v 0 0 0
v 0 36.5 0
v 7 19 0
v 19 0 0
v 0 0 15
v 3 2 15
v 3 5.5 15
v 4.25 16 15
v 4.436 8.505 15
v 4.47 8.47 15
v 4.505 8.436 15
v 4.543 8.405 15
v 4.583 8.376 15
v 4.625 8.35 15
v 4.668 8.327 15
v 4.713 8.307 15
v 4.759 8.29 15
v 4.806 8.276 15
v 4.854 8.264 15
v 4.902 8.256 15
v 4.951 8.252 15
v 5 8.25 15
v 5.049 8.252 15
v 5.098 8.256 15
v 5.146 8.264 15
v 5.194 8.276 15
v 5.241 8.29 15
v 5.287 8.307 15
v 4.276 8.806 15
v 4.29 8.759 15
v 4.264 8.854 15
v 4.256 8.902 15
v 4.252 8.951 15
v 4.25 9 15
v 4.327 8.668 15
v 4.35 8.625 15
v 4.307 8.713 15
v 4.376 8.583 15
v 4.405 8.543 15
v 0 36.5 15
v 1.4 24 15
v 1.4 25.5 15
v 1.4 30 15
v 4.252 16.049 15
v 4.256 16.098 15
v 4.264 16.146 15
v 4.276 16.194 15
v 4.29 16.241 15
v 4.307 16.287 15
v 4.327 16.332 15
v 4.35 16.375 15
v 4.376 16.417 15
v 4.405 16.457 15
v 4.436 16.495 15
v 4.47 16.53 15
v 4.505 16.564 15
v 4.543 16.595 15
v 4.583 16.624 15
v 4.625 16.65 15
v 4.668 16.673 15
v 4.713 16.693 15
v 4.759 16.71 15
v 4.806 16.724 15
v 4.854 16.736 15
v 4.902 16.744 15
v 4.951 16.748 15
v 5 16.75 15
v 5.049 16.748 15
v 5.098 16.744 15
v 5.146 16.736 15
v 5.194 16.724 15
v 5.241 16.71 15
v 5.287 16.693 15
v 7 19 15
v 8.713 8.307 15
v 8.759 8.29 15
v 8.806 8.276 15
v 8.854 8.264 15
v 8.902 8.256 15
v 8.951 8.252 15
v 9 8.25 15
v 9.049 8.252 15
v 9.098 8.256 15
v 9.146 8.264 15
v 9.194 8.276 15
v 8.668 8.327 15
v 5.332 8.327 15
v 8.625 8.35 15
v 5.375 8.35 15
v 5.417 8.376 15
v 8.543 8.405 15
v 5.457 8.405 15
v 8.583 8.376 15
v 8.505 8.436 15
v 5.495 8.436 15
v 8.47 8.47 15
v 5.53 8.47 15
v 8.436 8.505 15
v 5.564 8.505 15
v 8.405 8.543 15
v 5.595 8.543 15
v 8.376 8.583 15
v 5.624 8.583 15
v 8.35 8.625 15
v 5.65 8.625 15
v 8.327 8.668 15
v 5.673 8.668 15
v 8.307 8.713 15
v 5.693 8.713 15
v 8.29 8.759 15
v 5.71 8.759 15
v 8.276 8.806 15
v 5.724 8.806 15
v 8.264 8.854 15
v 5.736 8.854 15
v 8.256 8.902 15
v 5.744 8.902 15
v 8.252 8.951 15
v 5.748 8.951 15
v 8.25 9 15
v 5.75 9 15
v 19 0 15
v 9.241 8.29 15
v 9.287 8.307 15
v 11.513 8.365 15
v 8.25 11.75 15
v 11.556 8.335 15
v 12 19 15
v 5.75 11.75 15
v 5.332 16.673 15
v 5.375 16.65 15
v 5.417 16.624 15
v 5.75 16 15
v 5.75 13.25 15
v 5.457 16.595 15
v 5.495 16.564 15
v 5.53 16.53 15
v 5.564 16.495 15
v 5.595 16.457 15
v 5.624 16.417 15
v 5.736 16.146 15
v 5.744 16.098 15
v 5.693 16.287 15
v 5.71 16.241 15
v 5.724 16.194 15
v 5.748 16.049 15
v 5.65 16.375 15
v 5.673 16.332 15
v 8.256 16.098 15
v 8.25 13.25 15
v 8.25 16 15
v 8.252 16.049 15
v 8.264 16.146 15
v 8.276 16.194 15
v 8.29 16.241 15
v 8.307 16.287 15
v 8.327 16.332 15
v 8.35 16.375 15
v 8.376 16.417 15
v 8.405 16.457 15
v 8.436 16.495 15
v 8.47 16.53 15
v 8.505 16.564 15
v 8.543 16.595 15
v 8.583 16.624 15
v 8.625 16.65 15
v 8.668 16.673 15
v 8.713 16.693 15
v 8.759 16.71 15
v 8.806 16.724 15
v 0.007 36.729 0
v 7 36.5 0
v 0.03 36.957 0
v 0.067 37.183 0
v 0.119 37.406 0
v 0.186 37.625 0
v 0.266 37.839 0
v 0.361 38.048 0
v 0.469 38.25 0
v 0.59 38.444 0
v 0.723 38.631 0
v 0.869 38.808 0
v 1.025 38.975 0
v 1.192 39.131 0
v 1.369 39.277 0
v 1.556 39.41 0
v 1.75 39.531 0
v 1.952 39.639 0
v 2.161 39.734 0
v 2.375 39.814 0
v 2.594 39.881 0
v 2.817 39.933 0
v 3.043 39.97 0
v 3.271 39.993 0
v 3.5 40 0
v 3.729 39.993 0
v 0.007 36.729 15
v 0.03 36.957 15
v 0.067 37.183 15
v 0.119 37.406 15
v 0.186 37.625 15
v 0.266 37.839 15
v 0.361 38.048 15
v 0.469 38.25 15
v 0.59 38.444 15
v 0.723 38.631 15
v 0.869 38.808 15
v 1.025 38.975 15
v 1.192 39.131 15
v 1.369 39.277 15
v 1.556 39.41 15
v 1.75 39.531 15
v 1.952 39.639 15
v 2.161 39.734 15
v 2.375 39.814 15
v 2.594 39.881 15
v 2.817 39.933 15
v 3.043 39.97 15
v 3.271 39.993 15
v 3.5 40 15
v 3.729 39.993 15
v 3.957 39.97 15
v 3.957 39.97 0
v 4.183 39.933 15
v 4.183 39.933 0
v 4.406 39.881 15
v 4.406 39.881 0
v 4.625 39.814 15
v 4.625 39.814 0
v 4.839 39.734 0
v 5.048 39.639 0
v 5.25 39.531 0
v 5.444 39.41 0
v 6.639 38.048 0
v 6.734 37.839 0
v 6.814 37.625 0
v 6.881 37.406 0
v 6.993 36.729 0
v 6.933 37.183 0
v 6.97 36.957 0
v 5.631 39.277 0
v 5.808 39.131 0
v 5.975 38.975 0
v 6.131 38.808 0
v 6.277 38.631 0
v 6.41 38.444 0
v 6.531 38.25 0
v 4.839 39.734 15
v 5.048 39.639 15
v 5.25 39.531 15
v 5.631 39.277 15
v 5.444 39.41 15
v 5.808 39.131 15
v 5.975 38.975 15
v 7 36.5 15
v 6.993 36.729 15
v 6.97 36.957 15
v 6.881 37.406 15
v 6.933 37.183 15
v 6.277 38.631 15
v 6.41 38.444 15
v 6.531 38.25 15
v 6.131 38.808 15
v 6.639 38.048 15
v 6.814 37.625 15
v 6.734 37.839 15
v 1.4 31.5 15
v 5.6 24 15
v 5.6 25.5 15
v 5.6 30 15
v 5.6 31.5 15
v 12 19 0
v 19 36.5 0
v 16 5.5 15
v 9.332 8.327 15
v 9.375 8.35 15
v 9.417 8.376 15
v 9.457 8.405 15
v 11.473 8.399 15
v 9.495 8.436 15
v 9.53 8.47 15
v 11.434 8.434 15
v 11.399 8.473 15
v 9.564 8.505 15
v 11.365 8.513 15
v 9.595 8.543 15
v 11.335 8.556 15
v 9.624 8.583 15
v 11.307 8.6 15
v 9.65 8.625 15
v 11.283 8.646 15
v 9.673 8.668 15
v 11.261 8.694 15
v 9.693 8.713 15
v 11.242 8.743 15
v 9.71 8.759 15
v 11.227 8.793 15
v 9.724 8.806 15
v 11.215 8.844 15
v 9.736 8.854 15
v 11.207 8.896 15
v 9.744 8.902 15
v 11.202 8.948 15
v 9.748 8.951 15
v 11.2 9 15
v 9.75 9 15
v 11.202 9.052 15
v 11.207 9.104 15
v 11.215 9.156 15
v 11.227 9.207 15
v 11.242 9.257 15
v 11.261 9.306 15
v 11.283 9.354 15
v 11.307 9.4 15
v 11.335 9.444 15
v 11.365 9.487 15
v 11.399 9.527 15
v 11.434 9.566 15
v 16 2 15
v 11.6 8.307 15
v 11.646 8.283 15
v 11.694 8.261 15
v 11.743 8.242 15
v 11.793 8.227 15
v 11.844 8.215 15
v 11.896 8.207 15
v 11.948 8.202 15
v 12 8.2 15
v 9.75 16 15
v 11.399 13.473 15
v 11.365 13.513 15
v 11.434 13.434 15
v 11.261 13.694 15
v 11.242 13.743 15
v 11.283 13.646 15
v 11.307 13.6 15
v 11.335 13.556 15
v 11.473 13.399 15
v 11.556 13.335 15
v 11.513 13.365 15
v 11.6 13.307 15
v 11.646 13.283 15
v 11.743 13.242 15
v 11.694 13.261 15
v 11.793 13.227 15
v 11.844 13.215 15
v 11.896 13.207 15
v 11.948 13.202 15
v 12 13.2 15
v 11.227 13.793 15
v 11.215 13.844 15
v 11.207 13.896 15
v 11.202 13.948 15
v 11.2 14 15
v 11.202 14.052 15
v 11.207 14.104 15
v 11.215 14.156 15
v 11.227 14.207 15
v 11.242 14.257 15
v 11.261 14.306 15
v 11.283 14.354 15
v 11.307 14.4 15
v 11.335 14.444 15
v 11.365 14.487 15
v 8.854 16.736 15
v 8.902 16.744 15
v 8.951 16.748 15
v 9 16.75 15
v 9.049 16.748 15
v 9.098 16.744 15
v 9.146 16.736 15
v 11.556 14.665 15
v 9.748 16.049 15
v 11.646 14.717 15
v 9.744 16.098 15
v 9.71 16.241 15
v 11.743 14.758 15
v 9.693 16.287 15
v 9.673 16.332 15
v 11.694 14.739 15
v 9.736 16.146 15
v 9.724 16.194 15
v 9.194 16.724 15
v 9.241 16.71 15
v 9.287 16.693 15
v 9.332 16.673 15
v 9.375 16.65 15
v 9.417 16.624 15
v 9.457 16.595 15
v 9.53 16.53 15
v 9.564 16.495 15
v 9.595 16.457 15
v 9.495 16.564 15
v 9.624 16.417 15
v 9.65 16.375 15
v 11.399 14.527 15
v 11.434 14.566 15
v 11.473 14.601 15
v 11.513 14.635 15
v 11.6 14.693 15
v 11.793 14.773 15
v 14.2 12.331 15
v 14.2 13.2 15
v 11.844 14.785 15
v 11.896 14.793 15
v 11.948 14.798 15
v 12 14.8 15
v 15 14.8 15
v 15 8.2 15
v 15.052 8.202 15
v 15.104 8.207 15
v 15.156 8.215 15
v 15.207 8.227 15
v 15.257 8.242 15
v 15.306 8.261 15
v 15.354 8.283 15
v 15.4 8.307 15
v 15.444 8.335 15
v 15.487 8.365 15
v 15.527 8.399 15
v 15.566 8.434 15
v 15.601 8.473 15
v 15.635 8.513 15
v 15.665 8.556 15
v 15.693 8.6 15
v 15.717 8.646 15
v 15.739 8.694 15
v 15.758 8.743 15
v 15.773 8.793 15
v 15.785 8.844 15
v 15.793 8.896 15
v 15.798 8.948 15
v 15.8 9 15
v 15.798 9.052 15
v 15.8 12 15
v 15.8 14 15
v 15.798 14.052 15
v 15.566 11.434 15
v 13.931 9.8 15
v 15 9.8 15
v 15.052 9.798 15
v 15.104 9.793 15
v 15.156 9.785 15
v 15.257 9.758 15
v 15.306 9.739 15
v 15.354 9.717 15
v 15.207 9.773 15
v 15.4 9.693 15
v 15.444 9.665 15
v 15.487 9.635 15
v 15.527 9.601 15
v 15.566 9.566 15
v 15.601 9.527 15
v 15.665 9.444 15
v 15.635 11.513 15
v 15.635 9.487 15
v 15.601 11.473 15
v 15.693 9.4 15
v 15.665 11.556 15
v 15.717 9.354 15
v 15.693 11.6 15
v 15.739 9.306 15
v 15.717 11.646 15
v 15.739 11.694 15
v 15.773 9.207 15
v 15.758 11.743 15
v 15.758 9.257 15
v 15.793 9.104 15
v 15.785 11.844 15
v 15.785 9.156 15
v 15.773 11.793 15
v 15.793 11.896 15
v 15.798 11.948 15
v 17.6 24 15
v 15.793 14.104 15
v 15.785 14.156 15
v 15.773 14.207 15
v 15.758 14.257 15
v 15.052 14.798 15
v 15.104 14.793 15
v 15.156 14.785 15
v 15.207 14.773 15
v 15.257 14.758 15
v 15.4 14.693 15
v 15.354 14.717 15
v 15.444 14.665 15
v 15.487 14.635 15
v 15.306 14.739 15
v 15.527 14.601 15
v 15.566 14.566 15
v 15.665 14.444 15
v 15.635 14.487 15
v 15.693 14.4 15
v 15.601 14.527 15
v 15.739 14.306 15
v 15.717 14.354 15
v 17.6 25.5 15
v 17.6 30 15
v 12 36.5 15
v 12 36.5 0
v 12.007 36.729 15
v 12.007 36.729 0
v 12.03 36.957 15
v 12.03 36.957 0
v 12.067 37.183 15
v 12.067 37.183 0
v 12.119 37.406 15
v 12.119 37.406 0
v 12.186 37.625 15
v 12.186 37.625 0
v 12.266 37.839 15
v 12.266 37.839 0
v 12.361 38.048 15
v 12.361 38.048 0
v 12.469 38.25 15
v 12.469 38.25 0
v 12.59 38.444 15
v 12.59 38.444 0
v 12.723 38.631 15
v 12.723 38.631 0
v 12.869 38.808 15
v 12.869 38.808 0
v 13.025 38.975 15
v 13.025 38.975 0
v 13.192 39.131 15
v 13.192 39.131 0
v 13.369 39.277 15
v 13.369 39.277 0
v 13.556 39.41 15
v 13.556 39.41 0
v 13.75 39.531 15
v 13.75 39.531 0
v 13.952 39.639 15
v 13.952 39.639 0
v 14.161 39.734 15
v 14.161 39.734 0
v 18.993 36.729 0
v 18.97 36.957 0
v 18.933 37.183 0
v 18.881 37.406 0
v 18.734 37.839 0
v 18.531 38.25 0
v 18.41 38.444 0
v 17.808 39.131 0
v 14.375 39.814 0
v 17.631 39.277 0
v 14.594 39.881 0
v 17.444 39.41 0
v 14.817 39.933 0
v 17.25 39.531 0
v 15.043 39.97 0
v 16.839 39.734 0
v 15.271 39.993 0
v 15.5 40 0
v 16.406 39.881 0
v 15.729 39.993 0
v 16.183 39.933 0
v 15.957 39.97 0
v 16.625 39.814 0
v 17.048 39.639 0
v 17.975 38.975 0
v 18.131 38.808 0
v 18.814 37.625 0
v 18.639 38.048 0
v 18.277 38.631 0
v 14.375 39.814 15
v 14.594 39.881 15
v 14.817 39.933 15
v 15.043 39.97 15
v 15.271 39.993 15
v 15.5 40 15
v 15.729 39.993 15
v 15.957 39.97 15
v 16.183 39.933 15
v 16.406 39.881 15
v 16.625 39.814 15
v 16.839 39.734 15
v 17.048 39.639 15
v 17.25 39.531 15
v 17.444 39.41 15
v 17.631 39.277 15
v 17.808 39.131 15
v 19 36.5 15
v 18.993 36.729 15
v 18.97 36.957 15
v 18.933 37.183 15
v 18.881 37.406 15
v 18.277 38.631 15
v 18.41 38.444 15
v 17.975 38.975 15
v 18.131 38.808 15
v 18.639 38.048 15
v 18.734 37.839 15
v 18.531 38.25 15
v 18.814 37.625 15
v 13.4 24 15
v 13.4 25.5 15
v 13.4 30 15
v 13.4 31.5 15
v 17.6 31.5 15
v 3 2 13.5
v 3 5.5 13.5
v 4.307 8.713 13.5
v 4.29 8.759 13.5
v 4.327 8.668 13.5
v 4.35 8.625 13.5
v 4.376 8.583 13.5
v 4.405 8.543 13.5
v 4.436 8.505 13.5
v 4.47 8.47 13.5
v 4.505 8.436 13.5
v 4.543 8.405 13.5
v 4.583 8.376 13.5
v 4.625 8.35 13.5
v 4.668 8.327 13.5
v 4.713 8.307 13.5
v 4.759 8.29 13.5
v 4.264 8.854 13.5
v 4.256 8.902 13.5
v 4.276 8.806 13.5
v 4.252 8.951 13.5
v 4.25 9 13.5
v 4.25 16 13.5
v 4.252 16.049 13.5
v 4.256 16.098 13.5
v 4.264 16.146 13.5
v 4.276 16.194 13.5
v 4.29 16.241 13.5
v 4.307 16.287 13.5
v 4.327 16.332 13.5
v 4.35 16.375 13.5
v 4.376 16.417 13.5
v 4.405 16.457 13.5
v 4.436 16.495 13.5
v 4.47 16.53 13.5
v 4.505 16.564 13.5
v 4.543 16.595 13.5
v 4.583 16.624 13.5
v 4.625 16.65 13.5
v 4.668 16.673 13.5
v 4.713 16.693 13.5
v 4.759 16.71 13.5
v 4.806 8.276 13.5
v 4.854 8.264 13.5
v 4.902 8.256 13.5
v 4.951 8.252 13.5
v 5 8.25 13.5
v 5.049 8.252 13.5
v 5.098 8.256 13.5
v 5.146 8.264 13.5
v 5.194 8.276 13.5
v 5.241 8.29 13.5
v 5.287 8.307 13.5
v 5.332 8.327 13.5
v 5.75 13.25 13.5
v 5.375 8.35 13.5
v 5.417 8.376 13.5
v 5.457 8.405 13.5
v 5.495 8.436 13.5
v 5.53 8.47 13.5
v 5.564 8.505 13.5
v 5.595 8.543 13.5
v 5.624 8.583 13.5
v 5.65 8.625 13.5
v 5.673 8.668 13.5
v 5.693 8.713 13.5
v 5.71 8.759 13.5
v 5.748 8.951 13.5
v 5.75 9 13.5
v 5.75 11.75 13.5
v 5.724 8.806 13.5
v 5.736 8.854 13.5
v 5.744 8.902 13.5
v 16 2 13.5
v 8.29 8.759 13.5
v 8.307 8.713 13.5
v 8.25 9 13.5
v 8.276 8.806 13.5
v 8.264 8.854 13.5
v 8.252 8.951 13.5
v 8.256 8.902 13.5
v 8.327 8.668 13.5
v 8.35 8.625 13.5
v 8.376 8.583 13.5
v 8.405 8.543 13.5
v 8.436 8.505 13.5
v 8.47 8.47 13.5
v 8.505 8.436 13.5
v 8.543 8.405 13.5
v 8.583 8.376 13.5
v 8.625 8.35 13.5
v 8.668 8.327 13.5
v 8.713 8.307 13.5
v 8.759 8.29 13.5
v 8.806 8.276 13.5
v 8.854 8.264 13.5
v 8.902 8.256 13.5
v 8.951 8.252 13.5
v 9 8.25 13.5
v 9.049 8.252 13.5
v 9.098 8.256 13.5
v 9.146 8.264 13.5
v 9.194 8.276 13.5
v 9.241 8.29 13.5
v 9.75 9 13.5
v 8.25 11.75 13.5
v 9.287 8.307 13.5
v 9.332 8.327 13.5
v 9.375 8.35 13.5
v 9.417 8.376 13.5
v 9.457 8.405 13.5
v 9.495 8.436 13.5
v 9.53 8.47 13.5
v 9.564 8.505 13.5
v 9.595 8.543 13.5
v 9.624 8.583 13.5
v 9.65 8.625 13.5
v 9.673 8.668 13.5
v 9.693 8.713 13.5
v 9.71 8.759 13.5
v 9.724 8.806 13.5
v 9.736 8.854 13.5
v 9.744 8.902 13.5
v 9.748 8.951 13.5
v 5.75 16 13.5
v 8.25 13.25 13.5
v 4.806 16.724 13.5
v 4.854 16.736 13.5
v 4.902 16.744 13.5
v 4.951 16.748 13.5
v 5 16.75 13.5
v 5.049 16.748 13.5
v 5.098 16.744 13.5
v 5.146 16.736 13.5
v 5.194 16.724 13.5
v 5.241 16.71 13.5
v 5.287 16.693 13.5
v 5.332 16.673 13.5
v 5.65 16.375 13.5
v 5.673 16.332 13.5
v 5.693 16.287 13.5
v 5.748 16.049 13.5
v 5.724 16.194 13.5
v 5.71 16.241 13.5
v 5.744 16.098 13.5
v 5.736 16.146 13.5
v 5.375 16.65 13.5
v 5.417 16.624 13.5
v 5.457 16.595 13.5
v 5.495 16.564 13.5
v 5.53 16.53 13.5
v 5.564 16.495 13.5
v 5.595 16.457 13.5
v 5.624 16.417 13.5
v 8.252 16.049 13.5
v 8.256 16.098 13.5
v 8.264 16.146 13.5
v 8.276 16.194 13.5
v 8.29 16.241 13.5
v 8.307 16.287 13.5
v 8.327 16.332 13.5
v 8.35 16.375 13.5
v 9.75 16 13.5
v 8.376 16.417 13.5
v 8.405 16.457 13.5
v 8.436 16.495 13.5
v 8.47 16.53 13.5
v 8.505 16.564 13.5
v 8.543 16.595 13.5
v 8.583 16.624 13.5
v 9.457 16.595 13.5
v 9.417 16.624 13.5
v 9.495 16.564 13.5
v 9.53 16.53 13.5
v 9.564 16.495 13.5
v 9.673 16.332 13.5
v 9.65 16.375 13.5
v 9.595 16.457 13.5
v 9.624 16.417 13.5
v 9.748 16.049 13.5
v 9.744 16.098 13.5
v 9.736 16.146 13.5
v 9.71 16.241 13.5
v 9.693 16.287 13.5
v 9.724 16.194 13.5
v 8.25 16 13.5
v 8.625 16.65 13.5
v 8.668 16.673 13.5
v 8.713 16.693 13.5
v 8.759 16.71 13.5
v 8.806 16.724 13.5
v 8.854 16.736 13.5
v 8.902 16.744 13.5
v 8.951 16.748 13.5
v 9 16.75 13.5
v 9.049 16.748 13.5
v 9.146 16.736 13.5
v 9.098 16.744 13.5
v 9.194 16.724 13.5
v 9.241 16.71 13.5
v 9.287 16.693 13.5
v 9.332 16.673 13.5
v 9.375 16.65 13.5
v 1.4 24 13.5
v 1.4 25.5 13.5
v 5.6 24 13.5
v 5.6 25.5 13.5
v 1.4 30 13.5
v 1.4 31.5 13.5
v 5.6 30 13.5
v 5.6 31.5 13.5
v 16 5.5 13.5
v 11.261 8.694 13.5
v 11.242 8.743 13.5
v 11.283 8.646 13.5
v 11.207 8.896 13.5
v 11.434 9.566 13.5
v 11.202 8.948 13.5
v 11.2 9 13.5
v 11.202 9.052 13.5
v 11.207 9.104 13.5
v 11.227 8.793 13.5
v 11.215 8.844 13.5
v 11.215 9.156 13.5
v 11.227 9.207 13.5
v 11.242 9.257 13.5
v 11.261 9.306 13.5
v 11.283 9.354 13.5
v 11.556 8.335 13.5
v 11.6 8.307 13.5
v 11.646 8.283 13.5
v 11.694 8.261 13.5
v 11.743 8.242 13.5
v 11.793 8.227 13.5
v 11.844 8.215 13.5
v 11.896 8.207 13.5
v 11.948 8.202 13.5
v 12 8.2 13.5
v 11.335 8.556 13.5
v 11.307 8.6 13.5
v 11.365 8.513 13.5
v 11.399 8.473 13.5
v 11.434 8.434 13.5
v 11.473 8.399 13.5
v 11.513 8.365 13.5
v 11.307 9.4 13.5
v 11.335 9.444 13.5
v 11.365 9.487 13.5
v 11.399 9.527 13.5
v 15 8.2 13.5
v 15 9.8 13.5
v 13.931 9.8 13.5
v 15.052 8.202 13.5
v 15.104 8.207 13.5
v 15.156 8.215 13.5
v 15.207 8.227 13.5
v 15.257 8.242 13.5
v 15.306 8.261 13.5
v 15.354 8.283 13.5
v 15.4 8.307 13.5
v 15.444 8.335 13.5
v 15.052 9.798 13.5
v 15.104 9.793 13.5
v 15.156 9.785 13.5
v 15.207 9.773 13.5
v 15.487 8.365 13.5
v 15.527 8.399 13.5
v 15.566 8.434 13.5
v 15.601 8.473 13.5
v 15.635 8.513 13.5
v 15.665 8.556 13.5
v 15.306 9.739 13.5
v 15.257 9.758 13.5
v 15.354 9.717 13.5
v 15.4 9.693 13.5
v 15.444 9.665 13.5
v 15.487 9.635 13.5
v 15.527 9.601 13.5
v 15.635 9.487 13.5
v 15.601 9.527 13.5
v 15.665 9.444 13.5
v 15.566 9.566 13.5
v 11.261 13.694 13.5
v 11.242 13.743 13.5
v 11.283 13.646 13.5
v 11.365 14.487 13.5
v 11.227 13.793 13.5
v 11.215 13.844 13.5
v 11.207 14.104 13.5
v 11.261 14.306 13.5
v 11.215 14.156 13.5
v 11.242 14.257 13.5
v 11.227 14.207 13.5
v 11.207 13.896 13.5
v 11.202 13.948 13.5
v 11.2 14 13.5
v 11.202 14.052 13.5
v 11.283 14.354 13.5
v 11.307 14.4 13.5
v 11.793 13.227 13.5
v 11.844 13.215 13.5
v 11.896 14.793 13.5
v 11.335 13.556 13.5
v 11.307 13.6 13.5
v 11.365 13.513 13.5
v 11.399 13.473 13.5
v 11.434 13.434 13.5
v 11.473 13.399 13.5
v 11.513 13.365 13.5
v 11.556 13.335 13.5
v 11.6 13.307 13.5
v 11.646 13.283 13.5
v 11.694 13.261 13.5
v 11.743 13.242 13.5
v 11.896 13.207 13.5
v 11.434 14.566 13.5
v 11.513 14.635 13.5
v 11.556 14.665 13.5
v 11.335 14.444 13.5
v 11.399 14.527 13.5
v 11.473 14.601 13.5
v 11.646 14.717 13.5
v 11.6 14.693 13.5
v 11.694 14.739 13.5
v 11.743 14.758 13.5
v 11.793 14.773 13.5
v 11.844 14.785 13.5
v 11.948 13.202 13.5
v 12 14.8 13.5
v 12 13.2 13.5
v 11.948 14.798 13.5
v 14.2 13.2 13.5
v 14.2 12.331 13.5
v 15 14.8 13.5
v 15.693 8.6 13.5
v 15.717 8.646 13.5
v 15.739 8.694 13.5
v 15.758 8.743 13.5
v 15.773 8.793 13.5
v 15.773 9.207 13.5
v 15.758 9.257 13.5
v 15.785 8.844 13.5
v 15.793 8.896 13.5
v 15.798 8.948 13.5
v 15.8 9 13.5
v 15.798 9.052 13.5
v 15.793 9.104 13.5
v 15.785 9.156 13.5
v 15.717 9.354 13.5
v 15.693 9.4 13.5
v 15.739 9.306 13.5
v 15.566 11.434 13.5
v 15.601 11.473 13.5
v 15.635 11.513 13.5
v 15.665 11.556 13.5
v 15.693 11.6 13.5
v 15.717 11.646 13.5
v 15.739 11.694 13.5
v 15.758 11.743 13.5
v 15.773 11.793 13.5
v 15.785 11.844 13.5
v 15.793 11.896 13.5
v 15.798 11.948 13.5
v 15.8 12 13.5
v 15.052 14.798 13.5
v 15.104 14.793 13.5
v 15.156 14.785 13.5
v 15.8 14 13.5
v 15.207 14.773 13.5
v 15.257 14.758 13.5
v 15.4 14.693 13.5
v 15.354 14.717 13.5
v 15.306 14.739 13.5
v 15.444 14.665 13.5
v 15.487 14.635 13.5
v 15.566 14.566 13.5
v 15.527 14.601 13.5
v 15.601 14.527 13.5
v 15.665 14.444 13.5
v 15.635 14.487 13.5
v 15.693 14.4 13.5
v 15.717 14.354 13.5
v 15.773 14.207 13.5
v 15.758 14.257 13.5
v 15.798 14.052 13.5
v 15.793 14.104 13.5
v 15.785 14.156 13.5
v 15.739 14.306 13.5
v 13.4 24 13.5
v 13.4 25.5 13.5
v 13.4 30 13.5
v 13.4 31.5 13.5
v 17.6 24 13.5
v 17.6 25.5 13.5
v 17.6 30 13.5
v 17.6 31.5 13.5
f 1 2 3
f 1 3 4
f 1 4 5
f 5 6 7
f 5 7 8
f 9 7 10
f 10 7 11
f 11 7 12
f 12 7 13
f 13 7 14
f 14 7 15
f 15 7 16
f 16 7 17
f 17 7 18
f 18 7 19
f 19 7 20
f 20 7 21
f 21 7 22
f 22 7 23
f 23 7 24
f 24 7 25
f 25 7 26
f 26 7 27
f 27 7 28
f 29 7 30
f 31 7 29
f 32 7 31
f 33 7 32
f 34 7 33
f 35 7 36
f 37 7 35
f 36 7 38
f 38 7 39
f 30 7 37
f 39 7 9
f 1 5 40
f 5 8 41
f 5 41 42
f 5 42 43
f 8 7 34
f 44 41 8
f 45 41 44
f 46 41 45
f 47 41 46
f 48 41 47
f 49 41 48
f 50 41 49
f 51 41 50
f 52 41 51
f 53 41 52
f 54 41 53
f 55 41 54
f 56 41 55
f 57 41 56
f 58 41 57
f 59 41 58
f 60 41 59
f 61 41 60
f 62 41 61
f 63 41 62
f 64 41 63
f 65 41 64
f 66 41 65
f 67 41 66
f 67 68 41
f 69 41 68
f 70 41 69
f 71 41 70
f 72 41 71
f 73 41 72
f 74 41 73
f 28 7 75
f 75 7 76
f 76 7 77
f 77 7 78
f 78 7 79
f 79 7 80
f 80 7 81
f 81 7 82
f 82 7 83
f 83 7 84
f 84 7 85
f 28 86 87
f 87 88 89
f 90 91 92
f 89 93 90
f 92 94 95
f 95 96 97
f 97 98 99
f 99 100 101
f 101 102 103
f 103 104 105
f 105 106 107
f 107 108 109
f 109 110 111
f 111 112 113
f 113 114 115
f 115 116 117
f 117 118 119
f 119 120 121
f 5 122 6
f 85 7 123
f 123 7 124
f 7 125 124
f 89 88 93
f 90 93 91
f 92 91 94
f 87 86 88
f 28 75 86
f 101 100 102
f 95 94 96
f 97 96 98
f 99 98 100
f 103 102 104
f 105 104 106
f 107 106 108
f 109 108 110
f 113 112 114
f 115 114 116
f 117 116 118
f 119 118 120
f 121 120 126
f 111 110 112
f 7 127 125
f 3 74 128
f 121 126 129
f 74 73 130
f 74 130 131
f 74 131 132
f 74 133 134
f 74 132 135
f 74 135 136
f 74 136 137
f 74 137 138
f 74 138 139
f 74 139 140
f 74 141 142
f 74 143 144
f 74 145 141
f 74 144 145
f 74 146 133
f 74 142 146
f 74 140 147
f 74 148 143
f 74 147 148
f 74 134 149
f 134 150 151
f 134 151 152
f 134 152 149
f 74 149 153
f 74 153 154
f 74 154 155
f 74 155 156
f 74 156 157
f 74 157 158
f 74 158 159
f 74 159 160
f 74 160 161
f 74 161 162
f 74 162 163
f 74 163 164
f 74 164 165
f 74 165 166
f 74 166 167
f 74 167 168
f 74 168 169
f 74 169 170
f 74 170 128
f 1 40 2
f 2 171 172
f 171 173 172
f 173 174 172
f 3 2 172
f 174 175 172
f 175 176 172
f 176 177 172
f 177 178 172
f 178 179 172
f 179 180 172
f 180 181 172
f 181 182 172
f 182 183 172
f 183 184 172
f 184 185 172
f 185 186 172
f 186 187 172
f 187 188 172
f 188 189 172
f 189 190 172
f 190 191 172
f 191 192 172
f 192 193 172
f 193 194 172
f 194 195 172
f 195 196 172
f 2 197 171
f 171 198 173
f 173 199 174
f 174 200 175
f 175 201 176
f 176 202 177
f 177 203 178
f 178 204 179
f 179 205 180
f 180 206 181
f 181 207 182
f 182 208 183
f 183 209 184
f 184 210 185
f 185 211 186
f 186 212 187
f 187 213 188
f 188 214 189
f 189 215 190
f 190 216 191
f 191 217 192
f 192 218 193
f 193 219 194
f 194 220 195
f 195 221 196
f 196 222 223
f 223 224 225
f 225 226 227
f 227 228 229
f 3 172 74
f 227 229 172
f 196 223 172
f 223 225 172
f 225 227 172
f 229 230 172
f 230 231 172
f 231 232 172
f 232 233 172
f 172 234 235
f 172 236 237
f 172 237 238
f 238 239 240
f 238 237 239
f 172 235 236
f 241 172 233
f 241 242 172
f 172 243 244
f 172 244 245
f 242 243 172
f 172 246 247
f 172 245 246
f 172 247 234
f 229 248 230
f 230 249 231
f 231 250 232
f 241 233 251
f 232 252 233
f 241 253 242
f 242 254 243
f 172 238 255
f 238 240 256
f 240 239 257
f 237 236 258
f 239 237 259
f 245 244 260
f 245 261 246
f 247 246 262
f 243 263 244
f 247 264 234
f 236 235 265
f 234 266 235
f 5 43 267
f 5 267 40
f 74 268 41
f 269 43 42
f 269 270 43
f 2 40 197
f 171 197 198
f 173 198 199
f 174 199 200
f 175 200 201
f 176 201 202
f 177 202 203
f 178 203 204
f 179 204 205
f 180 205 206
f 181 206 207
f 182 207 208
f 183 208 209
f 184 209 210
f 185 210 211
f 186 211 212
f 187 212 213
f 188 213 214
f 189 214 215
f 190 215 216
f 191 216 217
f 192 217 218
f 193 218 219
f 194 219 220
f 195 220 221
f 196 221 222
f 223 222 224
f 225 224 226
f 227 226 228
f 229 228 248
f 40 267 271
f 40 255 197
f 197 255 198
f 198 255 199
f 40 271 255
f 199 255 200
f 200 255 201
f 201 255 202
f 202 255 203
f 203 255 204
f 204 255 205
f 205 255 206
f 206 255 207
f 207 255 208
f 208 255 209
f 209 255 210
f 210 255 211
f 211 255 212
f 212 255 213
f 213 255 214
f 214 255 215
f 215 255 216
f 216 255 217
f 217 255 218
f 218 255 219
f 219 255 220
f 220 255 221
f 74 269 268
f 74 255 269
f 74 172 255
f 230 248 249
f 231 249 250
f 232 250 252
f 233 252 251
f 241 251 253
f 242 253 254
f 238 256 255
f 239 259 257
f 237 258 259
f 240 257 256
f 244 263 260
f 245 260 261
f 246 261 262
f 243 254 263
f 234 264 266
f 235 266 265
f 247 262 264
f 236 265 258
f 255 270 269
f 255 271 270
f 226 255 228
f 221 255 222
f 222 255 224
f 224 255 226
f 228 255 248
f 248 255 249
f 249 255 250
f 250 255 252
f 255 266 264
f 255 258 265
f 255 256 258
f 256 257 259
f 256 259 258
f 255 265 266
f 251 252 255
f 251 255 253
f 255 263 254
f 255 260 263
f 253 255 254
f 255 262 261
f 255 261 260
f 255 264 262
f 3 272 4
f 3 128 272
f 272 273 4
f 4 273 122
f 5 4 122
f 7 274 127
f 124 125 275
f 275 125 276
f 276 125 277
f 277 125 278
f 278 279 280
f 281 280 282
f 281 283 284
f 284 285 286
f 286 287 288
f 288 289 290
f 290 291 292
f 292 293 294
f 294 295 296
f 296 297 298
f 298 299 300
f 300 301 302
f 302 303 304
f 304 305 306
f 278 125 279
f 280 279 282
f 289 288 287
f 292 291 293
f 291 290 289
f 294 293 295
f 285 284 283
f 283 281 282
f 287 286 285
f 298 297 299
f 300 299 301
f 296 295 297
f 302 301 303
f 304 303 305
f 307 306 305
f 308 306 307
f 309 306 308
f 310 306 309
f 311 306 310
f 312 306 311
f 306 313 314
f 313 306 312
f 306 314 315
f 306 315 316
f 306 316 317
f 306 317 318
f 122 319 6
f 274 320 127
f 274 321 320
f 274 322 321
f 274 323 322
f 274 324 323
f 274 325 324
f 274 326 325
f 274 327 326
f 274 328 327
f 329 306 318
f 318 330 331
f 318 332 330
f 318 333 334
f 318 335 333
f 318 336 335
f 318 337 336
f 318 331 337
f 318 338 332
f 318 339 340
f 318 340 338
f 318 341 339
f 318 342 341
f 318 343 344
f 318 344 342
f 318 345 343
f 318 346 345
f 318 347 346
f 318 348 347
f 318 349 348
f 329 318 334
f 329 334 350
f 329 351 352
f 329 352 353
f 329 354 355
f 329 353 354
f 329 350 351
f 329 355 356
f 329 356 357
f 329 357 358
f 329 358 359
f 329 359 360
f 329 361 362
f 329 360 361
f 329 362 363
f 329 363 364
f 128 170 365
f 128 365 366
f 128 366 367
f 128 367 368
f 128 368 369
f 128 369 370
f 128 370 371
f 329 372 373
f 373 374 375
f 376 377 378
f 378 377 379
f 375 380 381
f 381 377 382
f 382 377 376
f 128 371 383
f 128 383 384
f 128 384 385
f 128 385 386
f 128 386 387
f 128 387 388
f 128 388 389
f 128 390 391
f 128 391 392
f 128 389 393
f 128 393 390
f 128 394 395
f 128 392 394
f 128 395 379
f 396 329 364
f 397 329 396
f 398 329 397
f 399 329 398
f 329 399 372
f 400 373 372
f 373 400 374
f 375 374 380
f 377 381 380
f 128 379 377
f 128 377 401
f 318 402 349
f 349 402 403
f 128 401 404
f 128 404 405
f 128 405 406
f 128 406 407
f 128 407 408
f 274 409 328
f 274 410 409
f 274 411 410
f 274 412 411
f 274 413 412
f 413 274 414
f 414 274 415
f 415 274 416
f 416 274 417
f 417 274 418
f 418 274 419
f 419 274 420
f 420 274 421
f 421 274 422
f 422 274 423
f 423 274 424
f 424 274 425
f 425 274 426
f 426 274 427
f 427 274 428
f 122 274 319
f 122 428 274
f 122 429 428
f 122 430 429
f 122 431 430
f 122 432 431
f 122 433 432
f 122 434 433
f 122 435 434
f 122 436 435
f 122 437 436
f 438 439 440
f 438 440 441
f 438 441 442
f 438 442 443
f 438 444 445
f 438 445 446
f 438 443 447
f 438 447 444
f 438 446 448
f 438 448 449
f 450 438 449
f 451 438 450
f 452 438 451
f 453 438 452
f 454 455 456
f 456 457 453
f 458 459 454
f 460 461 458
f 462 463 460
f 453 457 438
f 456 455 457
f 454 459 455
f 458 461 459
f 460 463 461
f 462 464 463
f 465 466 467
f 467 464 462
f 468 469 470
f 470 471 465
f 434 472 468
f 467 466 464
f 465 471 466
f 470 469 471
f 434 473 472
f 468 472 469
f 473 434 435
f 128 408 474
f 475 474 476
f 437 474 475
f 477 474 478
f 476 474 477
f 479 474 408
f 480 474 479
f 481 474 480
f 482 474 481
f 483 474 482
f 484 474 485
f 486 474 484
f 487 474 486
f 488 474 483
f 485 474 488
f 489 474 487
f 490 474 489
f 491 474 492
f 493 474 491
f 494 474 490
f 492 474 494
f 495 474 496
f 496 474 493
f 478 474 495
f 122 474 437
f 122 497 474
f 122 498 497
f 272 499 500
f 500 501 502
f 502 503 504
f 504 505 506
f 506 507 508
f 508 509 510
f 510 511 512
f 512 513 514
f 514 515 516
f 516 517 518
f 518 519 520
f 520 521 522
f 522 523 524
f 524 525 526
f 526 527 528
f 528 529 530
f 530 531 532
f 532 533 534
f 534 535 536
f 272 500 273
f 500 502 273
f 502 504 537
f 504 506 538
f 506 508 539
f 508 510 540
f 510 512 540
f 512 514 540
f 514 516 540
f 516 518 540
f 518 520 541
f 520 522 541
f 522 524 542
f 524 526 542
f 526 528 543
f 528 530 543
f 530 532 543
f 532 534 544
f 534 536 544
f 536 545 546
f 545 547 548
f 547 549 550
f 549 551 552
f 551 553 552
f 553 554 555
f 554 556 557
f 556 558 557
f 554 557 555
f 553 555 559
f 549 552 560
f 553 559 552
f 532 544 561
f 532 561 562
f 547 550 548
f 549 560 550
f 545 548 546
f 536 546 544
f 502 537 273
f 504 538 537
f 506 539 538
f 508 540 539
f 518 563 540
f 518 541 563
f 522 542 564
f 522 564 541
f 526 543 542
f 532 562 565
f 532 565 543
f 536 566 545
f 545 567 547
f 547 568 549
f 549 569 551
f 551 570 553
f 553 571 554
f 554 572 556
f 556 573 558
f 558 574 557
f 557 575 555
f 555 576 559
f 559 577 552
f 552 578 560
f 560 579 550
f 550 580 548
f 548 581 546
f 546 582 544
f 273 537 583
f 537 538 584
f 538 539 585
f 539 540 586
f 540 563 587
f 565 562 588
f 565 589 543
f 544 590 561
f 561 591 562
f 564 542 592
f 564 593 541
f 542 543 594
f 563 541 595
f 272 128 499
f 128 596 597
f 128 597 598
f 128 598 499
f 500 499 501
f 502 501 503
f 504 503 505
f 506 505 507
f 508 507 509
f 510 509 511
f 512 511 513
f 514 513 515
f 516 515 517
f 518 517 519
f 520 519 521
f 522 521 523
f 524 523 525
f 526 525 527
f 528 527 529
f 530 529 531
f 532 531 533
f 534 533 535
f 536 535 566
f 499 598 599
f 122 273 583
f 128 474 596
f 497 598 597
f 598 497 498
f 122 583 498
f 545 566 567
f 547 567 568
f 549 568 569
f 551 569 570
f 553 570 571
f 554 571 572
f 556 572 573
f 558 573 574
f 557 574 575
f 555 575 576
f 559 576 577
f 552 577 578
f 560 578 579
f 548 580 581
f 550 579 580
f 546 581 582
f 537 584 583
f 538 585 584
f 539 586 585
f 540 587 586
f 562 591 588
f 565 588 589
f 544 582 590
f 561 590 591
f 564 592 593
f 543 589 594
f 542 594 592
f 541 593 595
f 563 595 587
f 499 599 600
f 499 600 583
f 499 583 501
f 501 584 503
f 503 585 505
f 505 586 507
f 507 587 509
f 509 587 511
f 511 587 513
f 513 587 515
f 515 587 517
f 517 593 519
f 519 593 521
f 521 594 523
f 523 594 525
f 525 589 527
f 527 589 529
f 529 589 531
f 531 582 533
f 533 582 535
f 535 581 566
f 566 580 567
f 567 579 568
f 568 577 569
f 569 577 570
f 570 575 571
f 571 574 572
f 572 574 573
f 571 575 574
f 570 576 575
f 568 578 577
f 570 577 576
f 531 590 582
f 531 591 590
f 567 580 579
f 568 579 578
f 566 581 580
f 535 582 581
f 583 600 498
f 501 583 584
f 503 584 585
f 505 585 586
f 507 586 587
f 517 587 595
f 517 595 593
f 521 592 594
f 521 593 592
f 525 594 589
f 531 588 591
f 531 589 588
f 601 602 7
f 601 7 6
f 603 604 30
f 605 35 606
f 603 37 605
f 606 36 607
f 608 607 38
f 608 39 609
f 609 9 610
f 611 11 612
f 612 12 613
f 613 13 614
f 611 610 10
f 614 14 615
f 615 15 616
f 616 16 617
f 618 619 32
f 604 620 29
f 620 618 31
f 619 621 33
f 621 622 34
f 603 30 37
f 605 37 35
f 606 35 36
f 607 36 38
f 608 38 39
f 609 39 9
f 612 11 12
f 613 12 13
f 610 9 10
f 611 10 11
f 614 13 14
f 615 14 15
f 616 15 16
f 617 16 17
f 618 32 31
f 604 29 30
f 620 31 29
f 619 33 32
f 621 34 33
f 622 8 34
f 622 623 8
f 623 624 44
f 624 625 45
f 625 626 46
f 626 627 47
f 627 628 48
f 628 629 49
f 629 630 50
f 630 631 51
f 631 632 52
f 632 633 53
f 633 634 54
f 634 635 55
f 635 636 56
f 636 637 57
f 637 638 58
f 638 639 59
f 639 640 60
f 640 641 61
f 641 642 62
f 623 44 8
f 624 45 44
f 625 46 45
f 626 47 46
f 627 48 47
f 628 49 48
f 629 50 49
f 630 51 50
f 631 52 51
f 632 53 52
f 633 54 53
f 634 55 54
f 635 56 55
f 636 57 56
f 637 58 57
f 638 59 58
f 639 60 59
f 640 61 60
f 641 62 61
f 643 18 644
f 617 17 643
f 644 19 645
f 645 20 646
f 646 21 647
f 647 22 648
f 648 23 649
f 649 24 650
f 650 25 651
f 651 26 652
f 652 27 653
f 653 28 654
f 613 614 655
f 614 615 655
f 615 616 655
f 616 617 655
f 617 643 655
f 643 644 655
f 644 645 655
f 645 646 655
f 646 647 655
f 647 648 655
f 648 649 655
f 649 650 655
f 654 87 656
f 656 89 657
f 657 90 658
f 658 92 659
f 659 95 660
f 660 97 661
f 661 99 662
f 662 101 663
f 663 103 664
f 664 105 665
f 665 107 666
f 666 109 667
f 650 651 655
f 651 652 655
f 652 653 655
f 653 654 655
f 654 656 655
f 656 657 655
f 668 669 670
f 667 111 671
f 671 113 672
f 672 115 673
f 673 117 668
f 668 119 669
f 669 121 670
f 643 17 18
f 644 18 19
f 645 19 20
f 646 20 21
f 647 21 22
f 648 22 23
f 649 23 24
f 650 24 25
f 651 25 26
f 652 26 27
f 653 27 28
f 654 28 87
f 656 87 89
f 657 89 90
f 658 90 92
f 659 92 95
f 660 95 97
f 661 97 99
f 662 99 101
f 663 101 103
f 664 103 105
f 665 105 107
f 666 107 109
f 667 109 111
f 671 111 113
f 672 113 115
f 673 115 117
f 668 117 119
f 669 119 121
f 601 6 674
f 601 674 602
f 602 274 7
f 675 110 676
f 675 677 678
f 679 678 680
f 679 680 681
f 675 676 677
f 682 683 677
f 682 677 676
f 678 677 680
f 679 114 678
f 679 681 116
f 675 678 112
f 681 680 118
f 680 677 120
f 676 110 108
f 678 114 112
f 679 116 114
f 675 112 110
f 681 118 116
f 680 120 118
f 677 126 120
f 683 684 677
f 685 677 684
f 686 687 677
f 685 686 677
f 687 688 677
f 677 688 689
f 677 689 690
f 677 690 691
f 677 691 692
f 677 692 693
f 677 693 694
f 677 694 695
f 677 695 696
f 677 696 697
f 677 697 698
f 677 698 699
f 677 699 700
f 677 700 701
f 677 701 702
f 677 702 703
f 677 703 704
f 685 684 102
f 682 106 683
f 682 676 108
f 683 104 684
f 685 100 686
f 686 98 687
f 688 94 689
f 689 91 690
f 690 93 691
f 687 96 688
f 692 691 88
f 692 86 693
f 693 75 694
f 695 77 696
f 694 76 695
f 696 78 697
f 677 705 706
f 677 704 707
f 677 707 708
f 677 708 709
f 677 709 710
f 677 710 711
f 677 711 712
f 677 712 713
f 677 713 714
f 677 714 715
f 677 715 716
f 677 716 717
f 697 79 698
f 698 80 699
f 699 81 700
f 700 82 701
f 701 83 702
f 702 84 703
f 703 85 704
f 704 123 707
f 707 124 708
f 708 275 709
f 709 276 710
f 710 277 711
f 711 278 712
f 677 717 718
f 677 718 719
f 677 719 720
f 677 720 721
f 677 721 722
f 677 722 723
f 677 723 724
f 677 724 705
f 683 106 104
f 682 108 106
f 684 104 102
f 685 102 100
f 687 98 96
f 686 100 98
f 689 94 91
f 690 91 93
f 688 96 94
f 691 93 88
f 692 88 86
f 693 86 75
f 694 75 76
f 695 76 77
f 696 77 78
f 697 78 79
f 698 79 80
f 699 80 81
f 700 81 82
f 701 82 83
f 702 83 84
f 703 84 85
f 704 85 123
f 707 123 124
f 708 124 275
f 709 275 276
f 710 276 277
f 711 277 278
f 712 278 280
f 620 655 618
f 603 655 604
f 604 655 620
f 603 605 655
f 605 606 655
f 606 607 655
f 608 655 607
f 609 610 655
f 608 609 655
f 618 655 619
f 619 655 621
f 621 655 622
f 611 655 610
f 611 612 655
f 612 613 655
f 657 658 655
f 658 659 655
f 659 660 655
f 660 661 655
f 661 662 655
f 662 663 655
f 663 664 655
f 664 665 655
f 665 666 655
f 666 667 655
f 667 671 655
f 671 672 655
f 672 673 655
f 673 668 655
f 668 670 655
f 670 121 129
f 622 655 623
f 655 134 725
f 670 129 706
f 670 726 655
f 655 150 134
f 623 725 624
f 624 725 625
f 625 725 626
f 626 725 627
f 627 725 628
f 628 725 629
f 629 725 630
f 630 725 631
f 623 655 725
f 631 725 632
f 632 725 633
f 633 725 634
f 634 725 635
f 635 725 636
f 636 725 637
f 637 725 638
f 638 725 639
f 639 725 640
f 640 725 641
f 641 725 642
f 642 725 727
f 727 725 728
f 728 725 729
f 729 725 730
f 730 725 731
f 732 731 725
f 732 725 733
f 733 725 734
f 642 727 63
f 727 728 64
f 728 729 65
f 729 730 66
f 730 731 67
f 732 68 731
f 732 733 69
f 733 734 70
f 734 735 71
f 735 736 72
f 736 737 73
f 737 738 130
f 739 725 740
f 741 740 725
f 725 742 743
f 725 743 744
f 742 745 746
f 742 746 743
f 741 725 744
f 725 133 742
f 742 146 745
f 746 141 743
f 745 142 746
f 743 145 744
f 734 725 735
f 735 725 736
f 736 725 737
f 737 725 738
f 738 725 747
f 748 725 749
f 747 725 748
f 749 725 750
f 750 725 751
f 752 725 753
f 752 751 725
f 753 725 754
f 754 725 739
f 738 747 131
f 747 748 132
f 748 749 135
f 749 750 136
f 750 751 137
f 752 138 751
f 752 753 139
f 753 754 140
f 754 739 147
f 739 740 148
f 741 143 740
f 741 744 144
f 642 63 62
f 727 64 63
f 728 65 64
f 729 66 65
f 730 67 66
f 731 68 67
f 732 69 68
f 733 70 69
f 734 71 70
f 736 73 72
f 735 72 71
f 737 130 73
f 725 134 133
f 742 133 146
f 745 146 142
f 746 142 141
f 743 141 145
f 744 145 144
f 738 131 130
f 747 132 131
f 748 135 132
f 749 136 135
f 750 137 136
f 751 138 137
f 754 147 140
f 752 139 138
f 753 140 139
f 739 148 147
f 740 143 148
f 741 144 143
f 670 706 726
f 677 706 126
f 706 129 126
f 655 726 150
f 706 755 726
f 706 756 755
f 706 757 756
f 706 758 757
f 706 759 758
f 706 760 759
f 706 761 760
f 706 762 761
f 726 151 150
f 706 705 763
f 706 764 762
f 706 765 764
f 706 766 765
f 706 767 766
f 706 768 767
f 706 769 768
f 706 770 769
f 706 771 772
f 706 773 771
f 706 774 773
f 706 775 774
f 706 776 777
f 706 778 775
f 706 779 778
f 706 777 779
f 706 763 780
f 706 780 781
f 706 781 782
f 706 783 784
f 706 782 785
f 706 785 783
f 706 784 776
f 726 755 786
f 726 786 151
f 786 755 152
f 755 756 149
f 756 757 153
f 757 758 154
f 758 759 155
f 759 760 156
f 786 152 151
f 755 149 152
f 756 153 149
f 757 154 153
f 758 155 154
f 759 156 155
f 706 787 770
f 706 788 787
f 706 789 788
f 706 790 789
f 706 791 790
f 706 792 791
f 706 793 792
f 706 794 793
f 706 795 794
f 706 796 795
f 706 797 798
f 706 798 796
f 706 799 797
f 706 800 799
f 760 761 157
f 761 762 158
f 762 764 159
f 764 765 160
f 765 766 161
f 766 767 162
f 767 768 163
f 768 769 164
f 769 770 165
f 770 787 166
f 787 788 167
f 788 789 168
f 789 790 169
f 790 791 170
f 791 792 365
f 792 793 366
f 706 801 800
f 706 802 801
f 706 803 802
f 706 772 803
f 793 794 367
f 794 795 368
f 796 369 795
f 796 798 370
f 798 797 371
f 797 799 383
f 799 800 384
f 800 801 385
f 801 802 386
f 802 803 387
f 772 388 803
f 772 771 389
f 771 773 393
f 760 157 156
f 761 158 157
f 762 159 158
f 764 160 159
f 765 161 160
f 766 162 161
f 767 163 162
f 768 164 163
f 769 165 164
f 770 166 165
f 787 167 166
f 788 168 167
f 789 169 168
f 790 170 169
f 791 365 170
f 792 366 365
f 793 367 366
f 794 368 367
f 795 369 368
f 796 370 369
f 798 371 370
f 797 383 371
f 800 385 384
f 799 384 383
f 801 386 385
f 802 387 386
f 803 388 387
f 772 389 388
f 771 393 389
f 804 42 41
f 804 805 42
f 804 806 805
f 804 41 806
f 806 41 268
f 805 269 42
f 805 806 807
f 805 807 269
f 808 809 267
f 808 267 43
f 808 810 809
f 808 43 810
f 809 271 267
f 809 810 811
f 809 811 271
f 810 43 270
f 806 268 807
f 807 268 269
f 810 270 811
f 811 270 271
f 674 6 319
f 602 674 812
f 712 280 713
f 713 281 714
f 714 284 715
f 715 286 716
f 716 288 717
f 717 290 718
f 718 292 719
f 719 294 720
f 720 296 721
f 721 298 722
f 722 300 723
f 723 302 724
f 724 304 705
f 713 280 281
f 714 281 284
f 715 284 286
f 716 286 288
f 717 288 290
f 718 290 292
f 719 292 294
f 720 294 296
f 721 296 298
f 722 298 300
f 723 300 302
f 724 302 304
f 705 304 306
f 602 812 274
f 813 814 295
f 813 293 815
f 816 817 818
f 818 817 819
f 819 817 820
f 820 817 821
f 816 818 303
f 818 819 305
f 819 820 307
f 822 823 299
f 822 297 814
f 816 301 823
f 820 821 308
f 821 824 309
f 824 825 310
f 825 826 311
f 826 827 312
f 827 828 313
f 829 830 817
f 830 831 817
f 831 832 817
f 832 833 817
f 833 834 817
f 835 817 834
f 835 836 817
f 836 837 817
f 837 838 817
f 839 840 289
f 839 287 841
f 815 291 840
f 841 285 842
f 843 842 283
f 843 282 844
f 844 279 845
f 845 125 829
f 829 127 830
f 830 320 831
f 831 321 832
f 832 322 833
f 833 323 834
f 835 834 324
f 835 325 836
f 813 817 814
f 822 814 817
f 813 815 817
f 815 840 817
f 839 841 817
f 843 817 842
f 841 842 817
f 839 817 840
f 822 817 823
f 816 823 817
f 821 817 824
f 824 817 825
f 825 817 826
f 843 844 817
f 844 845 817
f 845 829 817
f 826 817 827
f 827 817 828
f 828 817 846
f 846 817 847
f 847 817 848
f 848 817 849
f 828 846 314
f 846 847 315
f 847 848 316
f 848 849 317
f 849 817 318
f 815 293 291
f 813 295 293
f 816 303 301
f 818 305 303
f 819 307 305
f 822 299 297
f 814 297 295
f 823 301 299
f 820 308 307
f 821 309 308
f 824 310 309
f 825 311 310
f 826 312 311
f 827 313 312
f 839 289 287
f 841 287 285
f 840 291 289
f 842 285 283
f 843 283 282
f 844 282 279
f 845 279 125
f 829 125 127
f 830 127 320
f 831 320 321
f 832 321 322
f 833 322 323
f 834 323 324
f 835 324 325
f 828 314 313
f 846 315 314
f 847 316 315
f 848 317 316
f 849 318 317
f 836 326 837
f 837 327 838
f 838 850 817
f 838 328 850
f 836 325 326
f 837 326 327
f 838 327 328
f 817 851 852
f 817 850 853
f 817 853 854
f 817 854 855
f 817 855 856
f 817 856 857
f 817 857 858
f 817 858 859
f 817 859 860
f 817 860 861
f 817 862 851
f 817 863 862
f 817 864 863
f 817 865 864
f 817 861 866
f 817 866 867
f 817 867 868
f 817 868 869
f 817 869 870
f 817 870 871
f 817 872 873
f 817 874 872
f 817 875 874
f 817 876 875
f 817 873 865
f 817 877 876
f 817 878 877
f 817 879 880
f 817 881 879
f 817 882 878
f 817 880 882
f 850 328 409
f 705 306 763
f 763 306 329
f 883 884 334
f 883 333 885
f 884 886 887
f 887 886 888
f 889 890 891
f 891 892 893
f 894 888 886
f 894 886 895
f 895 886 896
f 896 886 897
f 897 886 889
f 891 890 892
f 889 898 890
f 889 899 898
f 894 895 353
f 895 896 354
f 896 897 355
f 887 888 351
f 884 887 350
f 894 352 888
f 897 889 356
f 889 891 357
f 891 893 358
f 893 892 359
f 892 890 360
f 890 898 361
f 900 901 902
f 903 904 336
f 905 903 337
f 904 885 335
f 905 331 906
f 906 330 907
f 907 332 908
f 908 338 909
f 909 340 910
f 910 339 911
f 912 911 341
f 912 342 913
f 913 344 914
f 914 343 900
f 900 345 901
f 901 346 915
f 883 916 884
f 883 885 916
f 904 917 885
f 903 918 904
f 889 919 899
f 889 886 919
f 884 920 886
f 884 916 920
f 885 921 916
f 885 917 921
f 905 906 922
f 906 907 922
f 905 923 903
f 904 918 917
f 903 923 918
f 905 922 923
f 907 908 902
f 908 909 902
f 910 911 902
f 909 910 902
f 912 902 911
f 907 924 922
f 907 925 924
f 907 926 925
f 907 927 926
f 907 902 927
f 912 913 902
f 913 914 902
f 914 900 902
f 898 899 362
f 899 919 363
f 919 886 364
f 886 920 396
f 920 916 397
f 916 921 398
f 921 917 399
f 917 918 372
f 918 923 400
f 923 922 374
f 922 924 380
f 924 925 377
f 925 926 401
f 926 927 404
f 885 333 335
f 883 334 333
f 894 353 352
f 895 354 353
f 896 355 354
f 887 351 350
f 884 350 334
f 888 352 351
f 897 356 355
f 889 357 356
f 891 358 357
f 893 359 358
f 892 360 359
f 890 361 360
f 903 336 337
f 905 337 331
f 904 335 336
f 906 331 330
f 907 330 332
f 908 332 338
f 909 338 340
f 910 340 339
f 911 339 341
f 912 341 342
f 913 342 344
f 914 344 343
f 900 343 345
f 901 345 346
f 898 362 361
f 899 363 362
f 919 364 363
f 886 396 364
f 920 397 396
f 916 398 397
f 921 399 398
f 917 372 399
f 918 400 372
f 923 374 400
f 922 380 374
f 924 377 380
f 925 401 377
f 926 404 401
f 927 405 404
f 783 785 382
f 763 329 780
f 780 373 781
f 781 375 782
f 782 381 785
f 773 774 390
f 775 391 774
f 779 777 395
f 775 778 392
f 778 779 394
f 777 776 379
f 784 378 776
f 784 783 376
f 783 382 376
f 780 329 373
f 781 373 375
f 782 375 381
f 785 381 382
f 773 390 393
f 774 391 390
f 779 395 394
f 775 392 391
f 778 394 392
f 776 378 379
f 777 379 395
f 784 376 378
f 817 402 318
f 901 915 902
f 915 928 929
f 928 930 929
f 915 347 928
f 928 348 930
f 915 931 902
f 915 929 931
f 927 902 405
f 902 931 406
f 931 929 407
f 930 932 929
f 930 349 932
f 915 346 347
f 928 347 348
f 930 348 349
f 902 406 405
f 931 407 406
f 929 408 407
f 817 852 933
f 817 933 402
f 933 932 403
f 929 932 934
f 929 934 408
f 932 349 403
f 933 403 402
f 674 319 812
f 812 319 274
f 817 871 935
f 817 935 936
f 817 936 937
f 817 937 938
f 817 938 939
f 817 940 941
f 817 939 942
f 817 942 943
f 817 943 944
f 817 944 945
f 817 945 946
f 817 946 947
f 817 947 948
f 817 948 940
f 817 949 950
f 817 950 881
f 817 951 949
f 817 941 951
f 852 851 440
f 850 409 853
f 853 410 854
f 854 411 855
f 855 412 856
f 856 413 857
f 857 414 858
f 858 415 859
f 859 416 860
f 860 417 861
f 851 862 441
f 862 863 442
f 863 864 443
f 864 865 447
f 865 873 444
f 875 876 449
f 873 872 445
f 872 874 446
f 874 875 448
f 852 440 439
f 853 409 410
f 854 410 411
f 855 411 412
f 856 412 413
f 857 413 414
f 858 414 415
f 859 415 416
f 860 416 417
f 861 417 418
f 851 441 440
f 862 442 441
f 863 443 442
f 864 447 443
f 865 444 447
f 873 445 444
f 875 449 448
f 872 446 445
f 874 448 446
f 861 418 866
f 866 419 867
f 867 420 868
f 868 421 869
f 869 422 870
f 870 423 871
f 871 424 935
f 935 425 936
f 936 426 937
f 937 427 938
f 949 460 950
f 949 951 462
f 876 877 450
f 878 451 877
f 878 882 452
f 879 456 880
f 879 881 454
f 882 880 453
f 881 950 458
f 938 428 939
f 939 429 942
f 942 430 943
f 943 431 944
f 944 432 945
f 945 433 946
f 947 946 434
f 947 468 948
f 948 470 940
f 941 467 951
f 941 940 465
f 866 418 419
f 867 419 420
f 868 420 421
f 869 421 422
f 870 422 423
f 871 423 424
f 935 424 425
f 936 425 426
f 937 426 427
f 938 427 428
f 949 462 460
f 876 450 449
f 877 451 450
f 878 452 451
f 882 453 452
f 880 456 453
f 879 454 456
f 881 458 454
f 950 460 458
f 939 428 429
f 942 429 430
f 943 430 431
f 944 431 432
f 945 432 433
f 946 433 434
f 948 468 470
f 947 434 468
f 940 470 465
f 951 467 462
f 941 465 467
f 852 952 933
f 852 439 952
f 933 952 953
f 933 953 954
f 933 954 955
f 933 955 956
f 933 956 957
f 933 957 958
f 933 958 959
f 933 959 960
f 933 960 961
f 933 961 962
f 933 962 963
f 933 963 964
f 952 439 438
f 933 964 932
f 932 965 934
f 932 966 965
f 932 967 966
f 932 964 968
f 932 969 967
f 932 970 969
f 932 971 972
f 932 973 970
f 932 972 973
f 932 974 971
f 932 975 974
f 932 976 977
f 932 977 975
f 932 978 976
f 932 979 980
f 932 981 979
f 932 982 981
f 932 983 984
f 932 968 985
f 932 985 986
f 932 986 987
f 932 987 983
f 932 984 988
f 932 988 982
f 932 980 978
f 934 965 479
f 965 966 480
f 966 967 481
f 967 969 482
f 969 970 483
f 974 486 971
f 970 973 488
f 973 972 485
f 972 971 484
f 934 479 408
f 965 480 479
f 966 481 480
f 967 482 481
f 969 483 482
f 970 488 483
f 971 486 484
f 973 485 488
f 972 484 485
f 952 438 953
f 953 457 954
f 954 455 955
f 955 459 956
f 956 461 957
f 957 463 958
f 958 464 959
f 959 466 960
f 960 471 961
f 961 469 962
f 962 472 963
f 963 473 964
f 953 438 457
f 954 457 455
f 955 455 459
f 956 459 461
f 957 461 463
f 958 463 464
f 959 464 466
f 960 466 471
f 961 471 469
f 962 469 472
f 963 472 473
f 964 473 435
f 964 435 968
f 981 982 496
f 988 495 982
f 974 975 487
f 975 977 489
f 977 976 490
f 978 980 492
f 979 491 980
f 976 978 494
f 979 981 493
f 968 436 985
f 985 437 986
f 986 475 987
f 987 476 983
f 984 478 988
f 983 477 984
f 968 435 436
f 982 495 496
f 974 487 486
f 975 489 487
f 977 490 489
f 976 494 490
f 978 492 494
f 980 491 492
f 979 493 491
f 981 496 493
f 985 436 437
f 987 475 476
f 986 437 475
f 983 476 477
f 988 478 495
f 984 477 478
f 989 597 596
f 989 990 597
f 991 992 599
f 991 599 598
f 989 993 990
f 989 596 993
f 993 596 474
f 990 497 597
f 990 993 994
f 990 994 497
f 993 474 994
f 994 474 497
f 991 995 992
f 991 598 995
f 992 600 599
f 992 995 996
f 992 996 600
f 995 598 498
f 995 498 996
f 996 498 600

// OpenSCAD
// Building facade miniature for board games.
// Millimetres. X=width, Y=height, Z=depth.
// Print flat at Z=0; straight base at Y=0; front at Z=15.
// All recesses are blind and 1.5 mm deep. This is a solid piece.
$fn=96;
depth=15;
recess=1.5;
module rect(x,y,w,h) { translate([x,y]) square([w,h]); }
module disc(x,y,r) { translate([x,y]) circle(r=r); }
module line(a,b,w=1.4) {
    hull() { translate(a) circle(d=w); translate(b) circle(d=w); }
}
module frame(x,y,w,h,t=1.4) {
    difference() { rect(x,y,w,h); rect(x+t,y+t,w-2*t,h-2*t); }
}
module gear(x,y,r=6,inner=2.4) {
    translate([x,y]) difference() {
        polygon([for(i=[0:(r<4?15:23)]) let(n=(r<4?16:24),a=(i+1)*360/n,rr=(i%4<2?r:r-min(1.5,r*0.21))) [rr*cos(a),rr*sin(a)]]);
        circle(r=inner);
    }
}
module car(x,y,w=14,h=5) {
    translate([x,y]) union() {
        polygon([[0,0.8],[0,h*0.48],[w*0.2,h*0.48],
                 [w*0.35,h],[w*0.67,h],[w*0.82,h*0.48],
                 [w,h*0.35],[w,0.8]]);
        disc(w*0.23,0.8,1.3); disc(w*0.77,0.8,1.3);
    }
}
module recycling(x,y,r=6) {
    translate([x,y]) for(a=[0,120,240]) rotate(a) {
        line([-3.8,3.2],[1.2,3.2],1.6);
        polygon([[1.2,1.7],[4.2,3.2],[1.2,4.7]]);
    }
}
module cutface() { translate([0,0,depth-recess]) linear_extrude(height=recess+0.5) facade(); }
// All details are recessed into the same solid facade.
difference() {
    linear_extrude(height=depth) outline();
    cutface();
}


module outline() {
    union() {
        rect(0,0,19,19);
        rect(0,17,7,19.5); disc(3.5,36.5,3.5);
        rect(12,17,7,19.5); disc(15.5,36.5,3.5);
    }
}
module facade() {
    for(x=[1.4,13.4]) { rect(x,24,4.2,1.5); rect(x,30,4.2,1.5); }
    line([5,9],[5,16],1.5); line([9,9],[9,16],1.5); line([5,12.5],[9,12.5],1.5);
    line([12,14],[15,14],1.6); line([15,14],[15,12],1.6);
    line([15,12],[12,9],1.6); line([12,9],[15,9],1.6);
    rect(3,2,13,3.5);
}
